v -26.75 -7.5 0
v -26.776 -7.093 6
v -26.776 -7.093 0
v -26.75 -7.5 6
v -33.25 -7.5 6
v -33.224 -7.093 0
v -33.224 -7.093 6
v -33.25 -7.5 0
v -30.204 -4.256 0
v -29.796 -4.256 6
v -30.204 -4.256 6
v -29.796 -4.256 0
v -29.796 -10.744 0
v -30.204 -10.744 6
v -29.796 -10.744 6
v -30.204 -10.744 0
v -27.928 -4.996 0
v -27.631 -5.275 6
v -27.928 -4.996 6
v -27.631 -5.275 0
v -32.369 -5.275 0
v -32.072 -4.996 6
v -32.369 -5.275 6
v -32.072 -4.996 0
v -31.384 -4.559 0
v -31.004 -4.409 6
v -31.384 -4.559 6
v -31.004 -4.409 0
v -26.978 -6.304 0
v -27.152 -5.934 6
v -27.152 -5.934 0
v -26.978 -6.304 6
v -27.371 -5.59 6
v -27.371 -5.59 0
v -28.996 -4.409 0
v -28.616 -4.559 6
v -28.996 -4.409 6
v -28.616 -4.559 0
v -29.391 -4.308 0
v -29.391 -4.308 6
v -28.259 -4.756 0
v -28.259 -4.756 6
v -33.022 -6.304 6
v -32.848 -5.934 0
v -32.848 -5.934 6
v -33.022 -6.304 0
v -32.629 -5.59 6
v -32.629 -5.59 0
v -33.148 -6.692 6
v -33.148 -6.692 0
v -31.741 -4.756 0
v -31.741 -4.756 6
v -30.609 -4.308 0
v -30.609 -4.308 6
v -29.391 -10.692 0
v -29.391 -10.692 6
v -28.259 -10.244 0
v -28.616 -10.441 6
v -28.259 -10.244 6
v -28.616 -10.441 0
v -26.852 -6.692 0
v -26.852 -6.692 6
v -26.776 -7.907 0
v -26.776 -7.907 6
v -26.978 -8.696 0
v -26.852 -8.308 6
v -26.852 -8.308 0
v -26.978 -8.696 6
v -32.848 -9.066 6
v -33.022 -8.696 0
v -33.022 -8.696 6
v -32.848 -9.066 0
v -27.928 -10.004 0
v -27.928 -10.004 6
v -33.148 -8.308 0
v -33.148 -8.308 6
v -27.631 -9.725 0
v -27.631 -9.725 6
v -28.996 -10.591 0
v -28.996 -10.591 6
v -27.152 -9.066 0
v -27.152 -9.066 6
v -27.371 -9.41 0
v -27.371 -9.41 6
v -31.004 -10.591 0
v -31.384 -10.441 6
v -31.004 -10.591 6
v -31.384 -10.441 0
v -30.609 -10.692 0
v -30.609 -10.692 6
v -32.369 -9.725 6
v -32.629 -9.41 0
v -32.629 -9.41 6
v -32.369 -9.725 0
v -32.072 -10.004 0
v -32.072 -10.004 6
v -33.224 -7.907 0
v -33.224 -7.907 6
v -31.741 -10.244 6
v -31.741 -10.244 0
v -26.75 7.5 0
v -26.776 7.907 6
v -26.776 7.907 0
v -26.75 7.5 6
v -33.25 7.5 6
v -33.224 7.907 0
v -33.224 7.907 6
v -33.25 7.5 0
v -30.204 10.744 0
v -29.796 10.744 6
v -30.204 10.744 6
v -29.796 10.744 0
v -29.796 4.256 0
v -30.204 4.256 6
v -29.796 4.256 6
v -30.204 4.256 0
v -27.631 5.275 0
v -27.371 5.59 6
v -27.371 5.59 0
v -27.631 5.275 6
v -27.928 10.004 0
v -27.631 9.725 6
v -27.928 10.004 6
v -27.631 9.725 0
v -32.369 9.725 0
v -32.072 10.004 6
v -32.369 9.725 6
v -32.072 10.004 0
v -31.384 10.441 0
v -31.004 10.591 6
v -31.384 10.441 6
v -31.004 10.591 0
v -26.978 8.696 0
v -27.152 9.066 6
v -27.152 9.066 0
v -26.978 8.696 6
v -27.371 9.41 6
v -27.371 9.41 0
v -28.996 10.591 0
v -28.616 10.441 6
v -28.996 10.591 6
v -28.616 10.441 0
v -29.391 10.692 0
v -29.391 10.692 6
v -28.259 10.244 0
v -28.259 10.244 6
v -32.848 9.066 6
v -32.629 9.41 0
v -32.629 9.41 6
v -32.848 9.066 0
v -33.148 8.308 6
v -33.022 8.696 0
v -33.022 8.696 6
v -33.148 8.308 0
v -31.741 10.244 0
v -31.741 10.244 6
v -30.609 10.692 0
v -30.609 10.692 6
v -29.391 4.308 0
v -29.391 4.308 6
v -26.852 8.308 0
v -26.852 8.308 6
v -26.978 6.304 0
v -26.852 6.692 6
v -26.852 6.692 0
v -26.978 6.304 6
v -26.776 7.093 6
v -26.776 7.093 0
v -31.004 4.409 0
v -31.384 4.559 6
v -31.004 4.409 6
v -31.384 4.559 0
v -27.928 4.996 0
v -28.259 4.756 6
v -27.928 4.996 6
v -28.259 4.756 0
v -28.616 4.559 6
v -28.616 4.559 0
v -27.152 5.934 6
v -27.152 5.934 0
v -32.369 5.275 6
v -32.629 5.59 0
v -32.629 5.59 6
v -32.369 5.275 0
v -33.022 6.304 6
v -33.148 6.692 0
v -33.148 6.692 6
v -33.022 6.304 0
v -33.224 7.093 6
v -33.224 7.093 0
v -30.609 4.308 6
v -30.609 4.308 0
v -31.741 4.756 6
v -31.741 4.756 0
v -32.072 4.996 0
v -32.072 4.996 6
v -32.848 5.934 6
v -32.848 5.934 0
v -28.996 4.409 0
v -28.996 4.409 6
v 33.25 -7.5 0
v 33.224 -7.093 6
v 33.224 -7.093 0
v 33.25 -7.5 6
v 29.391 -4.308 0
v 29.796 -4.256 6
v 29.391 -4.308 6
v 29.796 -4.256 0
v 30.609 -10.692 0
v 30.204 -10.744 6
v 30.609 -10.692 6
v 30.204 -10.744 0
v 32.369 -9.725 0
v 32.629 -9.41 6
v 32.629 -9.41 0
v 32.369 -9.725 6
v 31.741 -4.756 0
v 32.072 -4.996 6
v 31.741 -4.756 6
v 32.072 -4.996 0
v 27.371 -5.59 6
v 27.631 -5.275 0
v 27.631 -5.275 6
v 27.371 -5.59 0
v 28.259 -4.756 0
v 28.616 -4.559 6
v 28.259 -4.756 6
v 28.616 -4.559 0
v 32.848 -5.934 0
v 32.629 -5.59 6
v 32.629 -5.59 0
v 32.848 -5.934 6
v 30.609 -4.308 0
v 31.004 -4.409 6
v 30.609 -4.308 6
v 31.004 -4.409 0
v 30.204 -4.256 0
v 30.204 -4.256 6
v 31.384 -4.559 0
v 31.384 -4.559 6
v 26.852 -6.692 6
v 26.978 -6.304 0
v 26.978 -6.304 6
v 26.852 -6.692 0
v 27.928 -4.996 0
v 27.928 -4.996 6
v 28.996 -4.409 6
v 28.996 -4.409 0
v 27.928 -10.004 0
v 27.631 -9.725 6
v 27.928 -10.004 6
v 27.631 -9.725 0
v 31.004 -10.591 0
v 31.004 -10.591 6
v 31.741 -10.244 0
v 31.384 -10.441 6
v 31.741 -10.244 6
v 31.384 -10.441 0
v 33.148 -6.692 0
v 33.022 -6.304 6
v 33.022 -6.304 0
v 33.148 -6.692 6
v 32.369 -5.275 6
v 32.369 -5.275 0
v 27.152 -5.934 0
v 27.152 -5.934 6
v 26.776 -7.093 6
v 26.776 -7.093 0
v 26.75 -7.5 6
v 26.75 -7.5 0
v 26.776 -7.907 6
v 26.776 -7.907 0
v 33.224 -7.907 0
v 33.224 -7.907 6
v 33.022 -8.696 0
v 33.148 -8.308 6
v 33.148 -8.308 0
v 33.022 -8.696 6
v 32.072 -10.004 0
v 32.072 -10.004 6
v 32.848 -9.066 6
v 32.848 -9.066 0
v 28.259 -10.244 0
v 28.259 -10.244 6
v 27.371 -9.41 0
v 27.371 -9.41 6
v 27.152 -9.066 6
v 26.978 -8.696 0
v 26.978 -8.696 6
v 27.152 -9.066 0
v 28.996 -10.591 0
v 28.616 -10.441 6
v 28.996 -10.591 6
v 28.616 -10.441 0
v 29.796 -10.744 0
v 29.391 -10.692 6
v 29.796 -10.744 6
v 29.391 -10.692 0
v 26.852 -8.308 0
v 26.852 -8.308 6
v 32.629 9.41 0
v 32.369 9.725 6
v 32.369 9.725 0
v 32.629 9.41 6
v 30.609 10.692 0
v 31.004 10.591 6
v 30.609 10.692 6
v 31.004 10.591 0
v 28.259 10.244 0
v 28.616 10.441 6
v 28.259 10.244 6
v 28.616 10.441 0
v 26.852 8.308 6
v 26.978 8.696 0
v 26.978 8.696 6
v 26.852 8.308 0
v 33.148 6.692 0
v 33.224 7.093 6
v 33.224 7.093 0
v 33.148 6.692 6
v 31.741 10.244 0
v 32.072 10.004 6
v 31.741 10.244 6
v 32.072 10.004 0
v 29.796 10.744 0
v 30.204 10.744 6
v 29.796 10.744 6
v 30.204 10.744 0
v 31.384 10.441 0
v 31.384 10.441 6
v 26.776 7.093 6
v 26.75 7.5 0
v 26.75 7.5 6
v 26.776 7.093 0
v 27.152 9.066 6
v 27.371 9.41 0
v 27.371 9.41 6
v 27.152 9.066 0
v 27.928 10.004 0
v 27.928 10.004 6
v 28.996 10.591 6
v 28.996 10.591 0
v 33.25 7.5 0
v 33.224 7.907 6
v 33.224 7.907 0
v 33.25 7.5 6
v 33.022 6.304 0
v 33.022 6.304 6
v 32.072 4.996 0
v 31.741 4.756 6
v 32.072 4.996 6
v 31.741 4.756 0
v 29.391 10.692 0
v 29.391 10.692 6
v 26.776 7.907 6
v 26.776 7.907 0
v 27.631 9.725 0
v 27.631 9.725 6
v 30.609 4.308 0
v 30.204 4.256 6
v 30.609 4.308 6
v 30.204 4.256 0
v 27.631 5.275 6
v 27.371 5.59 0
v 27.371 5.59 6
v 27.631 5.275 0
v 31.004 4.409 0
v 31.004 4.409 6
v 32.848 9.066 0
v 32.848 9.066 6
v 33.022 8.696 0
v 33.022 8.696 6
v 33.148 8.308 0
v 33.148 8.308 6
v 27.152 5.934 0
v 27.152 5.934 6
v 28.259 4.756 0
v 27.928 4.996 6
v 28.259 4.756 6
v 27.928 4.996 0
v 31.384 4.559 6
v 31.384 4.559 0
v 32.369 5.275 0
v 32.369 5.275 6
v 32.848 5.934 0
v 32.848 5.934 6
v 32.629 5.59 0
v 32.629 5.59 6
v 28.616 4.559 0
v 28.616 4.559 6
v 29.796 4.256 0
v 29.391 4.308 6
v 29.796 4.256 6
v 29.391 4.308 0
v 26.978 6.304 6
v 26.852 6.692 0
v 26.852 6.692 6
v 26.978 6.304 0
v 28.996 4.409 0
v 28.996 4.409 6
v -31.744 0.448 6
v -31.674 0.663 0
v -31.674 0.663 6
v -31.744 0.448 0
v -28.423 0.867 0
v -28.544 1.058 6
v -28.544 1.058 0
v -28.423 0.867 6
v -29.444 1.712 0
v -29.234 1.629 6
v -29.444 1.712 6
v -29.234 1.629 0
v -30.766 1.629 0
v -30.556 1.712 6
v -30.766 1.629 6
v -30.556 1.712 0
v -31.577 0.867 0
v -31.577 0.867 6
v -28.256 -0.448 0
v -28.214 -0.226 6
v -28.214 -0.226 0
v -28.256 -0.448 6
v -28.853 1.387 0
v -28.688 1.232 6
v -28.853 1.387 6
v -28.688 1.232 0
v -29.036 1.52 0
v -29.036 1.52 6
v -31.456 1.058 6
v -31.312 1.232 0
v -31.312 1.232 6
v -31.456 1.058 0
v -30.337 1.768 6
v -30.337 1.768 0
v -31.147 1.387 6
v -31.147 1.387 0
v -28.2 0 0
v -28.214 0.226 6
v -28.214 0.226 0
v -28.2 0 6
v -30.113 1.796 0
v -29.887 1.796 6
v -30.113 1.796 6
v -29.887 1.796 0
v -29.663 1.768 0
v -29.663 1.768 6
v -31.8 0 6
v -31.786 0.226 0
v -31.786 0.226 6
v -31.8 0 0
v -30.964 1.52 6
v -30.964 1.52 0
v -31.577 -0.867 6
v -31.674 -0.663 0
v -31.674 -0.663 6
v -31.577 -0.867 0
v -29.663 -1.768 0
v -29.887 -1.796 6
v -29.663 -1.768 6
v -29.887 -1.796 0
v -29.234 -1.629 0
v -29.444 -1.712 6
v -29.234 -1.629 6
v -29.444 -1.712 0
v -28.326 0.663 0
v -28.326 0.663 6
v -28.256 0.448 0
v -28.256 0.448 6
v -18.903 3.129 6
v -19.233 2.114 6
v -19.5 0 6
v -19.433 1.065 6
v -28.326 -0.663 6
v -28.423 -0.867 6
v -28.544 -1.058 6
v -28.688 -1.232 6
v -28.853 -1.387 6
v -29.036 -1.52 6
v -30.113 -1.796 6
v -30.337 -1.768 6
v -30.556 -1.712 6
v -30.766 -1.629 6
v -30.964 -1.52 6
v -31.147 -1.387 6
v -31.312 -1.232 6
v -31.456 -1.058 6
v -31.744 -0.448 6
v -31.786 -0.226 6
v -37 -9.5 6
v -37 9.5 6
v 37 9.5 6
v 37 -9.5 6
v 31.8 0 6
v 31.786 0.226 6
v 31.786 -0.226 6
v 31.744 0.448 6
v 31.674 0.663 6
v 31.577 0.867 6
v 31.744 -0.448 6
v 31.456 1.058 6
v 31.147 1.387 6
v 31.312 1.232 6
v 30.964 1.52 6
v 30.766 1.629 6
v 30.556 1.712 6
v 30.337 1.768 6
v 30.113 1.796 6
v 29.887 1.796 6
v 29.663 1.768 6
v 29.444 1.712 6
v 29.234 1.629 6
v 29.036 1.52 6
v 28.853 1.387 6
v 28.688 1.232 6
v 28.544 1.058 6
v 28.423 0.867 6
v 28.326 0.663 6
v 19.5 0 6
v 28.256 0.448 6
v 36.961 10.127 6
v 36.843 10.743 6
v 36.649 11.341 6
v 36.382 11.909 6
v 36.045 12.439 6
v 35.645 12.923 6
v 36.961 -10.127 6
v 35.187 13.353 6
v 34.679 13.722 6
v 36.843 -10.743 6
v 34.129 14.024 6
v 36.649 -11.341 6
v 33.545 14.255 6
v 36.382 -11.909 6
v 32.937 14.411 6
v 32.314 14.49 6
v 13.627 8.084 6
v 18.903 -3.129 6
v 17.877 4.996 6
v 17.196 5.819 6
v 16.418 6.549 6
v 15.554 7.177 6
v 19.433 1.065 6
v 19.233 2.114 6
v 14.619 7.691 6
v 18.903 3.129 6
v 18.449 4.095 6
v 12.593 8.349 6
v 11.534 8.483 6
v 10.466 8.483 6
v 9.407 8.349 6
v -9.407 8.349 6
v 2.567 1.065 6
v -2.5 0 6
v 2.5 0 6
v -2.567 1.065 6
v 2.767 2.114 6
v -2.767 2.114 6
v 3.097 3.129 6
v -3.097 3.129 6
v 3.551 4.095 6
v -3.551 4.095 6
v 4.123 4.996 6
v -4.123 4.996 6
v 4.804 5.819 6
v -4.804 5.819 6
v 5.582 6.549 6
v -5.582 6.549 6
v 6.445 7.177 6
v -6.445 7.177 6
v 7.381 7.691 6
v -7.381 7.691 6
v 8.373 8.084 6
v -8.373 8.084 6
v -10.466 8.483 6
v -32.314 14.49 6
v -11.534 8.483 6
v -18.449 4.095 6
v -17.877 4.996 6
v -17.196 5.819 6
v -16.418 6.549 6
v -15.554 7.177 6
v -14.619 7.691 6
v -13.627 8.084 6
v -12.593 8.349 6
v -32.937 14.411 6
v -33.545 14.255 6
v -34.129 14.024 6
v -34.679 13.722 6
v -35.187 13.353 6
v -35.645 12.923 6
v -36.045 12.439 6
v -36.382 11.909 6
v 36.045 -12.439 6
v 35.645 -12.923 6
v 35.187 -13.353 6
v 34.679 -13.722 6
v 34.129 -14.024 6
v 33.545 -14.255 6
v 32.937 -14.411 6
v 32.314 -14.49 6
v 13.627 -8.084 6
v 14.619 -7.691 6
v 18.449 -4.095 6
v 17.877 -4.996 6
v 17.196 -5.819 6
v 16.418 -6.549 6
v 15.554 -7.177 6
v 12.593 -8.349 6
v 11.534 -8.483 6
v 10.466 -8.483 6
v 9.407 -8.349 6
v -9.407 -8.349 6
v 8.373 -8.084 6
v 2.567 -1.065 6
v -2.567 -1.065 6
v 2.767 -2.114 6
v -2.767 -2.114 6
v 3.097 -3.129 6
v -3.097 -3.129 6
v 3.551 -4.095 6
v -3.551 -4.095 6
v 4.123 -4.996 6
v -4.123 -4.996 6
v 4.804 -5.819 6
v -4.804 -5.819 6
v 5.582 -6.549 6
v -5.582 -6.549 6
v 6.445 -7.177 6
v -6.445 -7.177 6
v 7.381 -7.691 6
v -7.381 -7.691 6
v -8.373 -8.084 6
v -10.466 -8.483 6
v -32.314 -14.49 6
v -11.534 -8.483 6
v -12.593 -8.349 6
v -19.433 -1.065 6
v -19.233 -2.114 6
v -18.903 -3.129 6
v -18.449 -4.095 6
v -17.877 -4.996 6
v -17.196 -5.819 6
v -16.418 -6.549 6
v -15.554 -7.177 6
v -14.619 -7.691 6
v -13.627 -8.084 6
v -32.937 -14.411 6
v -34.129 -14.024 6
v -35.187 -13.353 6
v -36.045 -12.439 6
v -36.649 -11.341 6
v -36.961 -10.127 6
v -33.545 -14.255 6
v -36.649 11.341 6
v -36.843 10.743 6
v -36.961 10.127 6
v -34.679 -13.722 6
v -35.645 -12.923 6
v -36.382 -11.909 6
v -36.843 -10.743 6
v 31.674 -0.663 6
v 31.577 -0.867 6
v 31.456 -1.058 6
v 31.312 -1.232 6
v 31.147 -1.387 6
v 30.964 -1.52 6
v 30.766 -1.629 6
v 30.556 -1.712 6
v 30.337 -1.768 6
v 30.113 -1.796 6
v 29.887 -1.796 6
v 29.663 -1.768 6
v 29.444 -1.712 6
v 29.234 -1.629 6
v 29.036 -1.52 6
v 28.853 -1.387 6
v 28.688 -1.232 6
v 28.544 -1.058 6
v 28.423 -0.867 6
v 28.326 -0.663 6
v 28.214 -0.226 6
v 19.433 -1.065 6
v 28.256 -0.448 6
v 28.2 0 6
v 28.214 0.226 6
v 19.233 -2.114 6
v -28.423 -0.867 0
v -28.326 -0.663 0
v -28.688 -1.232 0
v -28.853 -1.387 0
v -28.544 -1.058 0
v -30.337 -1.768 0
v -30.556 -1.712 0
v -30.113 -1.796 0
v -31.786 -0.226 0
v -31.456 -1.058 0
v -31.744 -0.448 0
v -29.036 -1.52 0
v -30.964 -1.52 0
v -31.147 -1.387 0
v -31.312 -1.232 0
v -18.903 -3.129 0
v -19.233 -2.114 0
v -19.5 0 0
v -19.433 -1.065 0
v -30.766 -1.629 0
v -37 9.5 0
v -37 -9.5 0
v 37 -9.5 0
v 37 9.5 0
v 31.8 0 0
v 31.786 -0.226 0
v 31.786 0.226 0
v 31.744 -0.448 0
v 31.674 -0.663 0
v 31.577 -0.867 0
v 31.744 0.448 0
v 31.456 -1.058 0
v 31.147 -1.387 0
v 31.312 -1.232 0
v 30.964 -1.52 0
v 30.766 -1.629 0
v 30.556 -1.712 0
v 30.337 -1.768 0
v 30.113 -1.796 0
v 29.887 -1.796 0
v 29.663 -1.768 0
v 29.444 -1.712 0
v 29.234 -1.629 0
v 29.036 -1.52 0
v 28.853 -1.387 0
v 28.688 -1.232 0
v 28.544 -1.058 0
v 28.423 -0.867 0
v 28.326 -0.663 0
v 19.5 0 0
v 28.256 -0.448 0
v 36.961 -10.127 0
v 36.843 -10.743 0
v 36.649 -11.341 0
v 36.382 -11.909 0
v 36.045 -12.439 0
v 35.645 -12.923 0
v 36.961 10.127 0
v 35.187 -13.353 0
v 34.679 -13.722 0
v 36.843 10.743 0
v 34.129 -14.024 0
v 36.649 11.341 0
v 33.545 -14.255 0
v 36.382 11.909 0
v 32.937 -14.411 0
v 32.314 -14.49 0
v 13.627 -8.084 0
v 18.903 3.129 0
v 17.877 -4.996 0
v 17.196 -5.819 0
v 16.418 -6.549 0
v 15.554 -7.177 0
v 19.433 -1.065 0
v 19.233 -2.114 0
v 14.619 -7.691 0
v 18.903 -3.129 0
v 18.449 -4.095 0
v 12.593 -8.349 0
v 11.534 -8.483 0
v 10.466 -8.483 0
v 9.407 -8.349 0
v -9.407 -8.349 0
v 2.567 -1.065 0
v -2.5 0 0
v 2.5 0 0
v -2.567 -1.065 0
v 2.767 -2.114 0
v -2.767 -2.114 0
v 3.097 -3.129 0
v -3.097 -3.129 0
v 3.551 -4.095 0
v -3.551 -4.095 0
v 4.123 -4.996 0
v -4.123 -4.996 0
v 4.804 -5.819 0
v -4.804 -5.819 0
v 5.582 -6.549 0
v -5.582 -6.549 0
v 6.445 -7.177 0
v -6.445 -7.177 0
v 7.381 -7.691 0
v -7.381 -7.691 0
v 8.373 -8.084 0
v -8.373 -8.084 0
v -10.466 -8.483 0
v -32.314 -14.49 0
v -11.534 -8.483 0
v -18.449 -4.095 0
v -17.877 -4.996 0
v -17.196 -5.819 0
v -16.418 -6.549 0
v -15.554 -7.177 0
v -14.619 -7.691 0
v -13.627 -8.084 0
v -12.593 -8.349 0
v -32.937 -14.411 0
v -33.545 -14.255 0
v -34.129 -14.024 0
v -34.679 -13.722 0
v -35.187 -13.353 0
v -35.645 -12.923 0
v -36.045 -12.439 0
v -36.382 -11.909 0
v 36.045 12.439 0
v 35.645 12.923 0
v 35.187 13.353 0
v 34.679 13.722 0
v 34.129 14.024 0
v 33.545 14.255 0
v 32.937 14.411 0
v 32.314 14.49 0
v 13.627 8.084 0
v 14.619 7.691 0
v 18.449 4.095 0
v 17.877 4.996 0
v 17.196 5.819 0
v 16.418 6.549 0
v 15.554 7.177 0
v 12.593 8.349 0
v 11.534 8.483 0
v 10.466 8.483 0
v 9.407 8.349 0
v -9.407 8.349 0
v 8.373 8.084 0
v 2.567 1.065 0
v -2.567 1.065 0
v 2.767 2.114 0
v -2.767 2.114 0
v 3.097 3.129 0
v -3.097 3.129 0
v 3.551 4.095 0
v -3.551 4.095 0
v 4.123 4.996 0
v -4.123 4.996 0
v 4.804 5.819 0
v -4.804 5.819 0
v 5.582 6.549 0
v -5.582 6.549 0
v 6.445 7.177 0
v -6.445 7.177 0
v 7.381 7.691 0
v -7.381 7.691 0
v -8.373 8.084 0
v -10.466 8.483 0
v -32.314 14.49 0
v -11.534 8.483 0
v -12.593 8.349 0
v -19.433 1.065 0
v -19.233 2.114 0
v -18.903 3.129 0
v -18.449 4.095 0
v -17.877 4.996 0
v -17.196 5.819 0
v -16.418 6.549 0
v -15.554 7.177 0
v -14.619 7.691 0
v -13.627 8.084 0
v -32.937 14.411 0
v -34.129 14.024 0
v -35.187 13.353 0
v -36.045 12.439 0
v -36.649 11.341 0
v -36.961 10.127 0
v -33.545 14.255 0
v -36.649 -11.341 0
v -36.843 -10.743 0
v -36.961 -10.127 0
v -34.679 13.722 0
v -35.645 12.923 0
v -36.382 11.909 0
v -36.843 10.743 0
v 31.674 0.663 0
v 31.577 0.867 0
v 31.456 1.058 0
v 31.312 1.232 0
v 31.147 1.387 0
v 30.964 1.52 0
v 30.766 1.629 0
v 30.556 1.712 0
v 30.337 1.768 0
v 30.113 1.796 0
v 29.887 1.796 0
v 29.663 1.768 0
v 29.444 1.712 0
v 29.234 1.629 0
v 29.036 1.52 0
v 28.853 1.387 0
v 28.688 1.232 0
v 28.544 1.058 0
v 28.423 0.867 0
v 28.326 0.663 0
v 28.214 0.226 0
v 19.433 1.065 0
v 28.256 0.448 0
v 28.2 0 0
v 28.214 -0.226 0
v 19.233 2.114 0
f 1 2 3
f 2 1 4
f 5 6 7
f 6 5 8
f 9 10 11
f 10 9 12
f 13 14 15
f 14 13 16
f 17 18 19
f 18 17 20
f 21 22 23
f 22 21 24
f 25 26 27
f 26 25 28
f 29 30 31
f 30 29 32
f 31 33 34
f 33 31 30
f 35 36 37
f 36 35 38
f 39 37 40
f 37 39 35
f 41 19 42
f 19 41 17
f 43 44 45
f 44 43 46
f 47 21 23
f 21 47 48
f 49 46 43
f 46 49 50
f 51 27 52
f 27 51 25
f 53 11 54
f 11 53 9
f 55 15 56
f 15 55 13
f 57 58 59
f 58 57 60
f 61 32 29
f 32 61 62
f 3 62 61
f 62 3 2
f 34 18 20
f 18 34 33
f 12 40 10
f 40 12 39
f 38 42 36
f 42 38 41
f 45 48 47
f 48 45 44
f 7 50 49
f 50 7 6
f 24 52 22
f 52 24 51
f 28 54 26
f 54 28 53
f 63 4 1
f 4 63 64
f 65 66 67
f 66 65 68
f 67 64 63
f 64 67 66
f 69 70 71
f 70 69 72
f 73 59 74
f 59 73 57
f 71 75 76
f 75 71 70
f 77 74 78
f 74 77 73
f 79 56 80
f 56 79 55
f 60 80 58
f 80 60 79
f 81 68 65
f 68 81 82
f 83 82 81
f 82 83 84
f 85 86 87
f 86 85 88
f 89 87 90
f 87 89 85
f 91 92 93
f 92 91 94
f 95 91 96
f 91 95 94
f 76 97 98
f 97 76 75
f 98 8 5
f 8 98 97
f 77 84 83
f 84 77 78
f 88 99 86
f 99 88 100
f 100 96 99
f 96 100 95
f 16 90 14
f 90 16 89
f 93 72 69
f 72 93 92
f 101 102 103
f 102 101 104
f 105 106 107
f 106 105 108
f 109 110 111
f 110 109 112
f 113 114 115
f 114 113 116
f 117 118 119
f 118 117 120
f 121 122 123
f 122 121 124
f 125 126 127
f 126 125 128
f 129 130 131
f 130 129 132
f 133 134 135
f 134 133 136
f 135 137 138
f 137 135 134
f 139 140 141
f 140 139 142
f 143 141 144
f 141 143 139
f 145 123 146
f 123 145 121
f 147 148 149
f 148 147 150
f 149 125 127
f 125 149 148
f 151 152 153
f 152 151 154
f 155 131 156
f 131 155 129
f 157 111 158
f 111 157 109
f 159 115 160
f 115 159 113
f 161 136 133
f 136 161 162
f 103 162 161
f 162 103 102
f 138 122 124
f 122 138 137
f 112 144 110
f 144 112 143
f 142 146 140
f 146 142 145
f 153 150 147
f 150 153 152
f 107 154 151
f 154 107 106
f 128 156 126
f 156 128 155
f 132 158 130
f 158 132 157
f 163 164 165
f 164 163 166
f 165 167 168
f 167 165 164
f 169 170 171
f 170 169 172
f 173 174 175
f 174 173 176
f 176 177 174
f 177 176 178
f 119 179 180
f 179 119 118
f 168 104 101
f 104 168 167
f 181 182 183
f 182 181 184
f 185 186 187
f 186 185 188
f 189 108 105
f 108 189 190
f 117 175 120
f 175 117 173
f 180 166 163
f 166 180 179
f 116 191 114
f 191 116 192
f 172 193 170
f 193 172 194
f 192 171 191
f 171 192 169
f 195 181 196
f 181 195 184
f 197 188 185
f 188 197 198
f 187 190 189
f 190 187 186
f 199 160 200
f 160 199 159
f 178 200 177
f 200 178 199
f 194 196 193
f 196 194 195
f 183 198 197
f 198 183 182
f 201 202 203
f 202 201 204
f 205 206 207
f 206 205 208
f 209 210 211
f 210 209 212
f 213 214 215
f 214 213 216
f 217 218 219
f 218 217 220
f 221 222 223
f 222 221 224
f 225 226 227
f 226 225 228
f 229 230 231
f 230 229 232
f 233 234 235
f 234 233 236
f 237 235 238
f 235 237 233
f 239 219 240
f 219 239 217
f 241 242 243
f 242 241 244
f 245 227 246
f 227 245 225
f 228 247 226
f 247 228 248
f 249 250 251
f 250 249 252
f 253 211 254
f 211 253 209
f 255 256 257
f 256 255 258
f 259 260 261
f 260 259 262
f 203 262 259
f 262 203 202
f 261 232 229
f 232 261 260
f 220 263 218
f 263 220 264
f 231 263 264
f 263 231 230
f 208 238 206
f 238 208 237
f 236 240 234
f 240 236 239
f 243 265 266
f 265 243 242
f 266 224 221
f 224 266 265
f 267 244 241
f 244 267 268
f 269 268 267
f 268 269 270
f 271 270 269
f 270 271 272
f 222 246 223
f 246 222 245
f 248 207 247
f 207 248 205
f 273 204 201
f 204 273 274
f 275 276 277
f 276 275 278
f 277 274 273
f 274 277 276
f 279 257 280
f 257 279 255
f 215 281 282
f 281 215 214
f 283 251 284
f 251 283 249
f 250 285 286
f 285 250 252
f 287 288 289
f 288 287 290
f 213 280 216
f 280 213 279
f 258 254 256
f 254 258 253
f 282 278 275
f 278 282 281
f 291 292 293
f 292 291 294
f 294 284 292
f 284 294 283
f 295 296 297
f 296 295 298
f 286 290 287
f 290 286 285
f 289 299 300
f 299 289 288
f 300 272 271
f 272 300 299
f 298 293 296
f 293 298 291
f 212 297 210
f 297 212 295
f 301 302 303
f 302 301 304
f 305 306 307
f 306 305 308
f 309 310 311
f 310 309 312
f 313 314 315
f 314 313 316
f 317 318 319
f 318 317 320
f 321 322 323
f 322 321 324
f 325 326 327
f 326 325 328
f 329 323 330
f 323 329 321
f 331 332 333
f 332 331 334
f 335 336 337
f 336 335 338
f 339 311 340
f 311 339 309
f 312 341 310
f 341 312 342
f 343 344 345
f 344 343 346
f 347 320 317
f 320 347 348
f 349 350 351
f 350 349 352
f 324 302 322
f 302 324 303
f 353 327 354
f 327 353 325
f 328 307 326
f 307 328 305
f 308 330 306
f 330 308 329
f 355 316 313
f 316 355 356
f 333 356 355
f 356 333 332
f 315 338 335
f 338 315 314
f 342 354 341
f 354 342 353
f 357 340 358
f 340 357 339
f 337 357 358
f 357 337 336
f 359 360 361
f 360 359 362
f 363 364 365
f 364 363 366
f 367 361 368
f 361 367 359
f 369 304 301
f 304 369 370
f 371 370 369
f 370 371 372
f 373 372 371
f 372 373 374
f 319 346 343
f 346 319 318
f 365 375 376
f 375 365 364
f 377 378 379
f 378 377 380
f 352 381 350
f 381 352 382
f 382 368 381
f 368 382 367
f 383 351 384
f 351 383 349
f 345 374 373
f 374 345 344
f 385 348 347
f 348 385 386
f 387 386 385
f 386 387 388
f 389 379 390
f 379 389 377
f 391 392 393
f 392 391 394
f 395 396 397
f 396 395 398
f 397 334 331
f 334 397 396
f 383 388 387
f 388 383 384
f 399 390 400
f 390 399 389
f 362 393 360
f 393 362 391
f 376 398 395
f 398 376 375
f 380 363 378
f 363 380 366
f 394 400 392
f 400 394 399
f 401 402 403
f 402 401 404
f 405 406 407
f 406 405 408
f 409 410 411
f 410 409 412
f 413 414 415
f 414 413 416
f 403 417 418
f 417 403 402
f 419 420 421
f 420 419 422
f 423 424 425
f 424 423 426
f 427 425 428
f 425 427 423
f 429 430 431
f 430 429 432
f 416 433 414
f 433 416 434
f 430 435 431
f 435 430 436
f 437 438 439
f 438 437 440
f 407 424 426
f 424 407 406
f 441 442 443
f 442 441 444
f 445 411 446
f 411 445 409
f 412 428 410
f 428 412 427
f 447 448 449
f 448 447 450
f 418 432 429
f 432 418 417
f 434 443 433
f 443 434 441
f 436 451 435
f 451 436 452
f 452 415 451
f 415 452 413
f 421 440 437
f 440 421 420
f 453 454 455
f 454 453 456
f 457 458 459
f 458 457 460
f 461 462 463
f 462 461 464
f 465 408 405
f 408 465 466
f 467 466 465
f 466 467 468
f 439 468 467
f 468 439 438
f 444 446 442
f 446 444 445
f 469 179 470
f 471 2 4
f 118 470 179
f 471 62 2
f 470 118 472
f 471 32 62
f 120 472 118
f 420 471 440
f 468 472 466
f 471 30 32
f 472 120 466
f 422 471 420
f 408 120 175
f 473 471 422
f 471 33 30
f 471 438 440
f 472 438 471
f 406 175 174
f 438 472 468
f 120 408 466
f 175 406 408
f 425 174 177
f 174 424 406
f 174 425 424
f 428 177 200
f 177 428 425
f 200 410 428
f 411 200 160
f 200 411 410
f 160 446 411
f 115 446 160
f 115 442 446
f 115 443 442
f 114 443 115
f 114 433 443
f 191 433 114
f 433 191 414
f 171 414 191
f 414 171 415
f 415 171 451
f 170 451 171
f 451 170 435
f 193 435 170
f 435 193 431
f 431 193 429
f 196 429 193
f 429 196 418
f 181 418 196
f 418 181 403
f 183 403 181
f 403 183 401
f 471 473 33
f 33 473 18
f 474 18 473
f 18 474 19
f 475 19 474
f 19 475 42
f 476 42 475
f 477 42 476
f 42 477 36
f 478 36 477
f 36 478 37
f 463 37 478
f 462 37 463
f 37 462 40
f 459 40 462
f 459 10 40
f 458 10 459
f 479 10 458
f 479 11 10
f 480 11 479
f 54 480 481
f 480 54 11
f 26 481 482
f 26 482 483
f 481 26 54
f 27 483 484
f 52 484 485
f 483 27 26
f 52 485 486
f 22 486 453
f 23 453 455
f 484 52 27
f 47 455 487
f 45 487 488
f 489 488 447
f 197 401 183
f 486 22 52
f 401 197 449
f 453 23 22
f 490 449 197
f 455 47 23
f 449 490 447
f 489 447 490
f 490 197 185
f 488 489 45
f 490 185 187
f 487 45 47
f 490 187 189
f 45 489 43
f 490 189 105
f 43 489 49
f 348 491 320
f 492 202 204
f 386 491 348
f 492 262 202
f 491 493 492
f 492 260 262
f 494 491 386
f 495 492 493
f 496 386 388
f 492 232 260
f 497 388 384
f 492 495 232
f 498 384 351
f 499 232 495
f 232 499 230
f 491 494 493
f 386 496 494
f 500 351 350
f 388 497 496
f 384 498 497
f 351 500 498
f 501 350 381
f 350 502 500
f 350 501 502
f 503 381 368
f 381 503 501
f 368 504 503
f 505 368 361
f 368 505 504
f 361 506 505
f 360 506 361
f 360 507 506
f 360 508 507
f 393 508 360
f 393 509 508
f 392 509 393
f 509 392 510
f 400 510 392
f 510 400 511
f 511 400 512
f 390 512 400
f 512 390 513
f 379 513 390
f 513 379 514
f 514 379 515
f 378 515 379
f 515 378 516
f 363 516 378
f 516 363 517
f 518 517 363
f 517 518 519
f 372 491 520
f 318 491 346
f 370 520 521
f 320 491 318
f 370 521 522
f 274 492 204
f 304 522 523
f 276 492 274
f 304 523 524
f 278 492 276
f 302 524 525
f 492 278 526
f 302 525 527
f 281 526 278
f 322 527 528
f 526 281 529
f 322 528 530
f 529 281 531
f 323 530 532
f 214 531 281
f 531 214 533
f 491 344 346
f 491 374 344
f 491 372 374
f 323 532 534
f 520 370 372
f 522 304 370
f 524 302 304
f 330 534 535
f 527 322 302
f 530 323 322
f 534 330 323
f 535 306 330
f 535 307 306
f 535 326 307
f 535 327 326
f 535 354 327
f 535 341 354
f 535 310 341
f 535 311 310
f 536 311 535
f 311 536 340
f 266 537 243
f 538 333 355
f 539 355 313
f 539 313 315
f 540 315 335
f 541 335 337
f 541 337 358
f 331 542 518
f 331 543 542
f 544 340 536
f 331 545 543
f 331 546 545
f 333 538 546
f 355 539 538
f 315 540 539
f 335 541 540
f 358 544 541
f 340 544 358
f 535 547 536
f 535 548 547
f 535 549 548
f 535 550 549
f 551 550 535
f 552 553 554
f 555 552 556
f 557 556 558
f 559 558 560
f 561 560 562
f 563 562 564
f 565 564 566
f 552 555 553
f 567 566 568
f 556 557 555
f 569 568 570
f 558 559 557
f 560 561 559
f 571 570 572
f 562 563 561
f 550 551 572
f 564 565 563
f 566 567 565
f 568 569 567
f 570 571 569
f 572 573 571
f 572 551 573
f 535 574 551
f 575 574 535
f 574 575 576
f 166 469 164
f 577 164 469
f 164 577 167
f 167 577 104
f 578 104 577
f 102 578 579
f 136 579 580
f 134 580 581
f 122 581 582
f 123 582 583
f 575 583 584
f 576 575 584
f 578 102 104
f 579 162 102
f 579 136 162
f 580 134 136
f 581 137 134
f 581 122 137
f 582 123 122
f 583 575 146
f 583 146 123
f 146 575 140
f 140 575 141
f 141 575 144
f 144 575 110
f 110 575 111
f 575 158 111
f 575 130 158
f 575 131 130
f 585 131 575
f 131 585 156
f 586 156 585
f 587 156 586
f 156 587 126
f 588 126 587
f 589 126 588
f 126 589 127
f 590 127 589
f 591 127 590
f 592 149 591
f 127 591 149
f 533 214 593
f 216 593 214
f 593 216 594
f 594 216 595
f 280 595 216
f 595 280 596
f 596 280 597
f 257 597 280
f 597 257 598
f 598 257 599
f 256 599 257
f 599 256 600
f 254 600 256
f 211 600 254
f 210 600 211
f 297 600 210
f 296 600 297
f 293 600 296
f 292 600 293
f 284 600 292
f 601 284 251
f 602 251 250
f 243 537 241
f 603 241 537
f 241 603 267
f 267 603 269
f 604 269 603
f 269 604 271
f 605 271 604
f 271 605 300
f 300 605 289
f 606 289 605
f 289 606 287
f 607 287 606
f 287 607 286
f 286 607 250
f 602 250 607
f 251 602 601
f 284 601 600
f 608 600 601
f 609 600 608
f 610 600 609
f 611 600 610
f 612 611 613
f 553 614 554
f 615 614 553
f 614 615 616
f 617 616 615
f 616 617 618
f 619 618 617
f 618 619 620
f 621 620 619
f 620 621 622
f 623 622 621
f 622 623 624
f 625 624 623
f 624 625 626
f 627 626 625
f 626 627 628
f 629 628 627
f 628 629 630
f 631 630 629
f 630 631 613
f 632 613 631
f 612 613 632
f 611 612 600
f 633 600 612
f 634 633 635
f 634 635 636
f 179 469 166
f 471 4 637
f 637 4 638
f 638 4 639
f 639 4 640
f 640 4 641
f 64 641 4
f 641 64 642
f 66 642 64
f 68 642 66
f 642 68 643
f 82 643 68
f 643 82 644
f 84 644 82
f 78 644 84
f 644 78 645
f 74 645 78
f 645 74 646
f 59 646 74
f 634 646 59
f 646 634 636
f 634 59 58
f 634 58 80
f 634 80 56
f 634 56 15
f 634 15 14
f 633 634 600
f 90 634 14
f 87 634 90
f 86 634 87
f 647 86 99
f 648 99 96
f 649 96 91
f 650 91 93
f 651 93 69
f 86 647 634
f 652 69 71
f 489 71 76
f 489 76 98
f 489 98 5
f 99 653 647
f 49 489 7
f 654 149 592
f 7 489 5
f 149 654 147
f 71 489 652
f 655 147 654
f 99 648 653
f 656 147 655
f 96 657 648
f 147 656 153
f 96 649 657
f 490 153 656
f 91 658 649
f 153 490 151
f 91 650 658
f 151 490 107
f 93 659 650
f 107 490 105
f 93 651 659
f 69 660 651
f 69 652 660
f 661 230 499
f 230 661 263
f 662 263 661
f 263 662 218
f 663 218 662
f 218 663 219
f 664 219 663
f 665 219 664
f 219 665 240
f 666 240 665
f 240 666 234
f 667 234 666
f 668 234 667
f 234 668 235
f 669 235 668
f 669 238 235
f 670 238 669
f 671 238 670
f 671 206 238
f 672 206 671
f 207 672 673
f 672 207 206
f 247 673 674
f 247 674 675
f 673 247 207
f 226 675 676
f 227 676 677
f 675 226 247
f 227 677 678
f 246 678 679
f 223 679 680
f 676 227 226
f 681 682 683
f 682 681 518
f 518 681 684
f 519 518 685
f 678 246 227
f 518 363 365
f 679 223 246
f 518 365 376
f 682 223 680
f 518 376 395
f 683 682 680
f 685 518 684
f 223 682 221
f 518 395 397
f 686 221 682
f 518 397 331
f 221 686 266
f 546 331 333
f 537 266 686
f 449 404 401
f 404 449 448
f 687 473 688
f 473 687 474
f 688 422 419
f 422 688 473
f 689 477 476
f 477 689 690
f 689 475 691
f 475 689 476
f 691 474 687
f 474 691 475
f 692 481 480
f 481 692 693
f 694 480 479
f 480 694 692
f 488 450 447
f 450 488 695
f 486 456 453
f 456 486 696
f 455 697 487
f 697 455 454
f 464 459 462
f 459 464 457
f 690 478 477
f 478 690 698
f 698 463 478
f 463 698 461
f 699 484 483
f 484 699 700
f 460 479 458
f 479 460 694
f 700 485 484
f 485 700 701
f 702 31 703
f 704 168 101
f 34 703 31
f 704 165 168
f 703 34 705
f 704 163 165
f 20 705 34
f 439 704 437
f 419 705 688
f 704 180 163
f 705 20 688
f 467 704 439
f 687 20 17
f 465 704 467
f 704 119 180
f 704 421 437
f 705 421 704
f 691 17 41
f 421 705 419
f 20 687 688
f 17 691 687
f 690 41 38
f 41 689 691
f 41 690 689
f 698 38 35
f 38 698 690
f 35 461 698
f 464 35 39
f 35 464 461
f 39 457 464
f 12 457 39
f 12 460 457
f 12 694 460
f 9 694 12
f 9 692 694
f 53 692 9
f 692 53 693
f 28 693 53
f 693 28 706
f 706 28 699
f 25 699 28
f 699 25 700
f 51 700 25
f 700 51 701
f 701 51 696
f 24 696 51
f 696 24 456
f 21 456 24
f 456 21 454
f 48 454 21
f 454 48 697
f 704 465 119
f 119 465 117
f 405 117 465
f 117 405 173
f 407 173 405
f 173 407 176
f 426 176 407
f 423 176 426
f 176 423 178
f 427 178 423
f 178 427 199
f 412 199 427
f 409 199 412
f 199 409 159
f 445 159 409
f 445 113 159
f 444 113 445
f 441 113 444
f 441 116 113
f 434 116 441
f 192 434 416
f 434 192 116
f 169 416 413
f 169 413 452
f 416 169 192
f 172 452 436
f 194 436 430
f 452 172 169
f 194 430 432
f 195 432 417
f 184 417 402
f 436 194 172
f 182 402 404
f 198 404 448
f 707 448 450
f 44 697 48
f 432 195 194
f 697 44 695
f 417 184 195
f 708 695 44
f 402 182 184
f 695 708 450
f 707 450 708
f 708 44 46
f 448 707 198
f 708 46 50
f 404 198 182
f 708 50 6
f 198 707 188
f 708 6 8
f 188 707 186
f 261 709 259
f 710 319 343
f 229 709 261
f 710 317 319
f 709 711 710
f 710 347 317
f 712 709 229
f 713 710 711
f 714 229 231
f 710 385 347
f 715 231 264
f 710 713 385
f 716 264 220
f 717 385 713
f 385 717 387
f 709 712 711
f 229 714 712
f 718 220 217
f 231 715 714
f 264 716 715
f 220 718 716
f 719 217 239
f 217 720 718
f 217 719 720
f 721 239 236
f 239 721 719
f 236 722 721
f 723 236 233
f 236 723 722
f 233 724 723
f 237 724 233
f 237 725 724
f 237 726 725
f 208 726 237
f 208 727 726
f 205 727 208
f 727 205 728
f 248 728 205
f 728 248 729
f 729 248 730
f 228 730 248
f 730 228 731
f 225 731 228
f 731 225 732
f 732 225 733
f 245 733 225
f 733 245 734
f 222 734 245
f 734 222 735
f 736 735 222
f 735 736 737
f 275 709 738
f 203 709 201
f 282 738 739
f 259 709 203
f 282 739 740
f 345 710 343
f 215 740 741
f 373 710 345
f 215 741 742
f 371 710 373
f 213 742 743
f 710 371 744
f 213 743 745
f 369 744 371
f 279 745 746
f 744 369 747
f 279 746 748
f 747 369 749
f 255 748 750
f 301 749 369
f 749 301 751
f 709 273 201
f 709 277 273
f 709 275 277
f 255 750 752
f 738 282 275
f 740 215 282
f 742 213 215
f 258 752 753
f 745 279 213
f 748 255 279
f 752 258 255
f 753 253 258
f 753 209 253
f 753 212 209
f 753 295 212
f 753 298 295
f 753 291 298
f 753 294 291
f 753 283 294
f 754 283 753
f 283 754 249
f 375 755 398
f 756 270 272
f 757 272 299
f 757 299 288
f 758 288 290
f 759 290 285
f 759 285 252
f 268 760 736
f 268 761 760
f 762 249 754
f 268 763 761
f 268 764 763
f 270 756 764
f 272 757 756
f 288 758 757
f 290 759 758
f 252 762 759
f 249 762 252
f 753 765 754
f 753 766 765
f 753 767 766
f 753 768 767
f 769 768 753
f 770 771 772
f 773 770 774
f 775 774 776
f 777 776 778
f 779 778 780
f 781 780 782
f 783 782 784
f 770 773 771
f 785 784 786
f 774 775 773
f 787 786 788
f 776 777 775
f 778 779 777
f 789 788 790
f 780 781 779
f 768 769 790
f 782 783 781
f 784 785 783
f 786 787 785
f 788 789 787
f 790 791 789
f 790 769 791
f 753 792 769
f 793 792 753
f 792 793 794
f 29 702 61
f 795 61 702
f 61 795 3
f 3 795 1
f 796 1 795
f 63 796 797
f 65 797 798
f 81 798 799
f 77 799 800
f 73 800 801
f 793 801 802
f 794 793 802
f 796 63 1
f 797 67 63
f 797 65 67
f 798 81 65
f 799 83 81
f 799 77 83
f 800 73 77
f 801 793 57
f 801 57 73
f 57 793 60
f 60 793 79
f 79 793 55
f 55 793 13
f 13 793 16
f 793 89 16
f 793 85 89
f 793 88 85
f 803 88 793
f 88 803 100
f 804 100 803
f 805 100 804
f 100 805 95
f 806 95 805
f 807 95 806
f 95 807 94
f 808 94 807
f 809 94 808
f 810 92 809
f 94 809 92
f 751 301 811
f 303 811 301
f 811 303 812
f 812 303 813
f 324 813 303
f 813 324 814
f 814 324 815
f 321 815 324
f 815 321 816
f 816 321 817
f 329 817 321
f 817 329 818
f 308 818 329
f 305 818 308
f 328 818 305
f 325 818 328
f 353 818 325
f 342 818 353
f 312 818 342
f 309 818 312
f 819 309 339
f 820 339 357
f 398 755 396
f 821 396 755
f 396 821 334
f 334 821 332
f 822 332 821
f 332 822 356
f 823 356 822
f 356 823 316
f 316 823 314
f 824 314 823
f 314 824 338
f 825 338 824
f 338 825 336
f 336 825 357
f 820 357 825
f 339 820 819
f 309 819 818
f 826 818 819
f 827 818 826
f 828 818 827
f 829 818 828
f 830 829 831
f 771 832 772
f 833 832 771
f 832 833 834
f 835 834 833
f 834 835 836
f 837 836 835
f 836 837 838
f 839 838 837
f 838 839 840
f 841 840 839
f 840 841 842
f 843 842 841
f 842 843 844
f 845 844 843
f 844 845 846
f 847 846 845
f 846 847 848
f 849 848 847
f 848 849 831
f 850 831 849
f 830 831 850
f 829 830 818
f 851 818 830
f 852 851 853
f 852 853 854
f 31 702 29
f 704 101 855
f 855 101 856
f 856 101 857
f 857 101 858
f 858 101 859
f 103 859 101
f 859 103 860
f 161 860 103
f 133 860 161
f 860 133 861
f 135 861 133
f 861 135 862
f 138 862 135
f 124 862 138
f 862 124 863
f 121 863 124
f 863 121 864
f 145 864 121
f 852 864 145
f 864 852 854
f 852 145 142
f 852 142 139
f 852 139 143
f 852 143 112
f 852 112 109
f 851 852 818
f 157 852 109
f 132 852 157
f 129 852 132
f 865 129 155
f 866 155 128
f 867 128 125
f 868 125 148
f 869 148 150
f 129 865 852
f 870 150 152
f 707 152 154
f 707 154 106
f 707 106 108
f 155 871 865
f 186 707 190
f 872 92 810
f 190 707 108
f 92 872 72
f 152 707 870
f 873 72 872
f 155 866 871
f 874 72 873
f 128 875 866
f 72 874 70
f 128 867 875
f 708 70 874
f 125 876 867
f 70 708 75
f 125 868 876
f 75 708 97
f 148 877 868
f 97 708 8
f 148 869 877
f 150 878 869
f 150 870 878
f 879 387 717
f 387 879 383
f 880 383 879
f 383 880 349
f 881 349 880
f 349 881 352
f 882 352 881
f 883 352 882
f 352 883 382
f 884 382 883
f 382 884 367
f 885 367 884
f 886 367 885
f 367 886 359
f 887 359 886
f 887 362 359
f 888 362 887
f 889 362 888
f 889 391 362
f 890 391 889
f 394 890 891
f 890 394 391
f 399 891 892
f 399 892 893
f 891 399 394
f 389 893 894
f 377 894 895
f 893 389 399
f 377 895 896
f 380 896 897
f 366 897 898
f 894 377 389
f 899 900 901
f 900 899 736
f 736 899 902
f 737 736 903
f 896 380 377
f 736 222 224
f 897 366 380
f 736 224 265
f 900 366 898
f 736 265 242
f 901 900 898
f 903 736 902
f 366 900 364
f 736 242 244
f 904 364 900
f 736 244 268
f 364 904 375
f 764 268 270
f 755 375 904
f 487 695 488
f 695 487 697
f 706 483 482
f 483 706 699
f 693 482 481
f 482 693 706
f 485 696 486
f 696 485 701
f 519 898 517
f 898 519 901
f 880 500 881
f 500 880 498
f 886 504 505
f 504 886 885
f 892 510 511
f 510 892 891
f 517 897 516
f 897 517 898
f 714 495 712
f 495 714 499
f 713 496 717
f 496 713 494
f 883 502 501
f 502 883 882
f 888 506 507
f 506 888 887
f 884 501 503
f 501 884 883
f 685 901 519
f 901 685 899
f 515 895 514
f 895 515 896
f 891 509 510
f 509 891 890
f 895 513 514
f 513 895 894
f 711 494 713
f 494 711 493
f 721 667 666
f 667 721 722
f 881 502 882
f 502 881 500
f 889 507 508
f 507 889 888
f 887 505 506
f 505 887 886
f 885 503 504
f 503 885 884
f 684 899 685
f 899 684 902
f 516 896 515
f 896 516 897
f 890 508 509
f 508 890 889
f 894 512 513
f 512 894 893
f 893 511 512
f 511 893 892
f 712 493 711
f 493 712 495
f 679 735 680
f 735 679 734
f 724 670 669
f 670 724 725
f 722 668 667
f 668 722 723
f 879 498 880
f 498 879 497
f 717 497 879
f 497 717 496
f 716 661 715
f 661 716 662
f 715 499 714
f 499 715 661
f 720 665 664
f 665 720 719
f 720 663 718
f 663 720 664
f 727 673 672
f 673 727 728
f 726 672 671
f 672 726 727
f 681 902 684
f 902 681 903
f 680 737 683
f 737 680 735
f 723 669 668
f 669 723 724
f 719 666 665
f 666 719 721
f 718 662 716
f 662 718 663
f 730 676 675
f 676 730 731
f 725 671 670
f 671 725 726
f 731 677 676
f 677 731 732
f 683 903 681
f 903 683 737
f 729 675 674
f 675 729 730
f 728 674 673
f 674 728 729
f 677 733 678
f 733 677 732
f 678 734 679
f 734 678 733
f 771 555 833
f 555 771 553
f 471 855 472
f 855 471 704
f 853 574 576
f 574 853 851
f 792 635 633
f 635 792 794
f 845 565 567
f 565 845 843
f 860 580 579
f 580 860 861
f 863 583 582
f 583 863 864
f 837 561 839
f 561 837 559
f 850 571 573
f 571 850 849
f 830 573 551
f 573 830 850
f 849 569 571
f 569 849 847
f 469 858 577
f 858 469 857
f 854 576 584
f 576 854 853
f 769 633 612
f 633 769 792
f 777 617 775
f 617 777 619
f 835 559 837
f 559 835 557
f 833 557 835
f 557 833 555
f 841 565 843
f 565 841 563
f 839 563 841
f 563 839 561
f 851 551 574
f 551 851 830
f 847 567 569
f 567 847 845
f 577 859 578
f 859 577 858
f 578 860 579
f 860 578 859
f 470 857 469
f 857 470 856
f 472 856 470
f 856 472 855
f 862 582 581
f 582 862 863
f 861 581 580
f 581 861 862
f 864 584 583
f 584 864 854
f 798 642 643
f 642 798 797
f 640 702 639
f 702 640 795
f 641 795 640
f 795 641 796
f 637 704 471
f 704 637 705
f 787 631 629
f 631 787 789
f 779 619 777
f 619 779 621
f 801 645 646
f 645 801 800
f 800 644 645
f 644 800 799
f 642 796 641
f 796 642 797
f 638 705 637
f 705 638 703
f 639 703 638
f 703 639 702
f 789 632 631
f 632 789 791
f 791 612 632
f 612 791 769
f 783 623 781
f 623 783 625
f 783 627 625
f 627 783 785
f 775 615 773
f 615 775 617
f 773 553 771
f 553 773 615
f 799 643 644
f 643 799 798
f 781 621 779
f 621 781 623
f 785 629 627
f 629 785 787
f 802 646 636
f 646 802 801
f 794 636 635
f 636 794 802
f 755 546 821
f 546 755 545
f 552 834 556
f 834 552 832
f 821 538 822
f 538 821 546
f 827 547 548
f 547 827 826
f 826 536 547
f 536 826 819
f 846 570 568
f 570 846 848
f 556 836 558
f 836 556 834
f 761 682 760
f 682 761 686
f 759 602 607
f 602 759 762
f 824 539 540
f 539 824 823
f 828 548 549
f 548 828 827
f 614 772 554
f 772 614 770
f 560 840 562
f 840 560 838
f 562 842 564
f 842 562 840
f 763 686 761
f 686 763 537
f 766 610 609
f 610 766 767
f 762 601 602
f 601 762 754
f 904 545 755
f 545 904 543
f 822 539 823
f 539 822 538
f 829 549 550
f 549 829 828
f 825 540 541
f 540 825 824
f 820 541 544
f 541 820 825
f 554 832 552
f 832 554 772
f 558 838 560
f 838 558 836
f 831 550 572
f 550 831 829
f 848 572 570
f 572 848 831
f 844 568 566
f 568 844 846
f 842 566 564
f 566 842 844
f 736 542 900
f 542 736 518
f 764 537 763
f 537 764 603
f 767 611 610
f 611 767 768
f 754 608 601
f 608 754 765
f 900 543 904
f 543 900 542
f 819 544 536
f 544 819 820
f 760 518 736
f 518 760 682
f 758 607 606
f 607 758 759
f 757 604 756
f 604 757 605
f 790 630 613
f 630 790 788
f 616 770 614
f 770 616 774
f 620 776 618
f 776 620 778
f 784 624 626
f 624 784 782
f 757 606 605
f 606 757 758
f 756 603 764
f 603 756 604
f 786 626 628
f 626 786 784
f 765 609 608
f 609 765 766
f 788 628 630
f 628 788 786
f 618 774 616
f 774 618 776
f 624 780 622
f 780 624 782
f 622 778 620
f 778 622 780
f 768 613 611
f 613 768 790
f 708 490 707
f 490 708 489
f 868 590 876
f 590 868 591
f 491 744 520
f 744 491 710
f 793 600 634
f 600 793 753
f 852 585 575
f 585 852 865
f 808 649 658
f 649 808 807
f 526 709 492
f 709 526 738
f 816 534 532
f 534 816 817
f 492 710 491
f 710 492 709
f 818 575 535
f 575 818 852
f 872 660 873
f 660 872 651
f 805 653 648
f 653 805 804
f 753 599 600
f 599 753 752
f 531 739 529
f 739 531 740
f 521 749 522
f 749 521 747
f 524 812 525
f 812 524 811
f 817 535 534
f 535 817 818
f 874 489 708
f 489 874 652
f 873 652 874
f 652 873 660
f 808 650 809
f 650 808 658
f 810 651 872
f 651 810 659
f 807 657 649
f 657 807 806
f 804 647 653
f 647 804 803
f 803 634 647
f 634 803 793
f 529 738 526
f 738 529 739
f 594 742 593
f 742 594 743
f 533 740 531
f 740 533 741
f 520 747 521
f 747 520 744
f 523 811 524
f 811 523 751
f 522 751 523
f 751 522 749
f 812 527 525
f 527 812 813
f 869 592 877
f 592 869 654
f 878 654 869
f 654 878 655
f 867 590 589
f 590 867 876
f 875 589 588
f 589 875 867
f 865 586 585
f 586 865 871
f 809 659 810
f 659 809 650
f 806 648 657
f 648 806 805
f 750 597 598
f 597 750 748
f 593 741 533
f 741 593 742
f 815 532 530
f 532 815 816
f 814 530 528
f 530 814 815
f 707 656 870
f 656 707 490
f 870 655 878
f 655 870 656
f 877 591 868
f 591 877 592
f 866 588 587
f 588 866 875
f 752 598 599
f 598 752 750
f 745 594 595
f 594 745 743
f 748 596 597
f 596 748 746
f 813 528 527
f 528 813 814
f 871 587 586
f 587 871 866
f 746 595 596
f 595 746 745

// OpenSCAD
$fn = 50;


difference() {
	union() {
		hull() {
			translate(v = [-32.0000000000, 9.5000000000, 0]) {
				cylinder(h = 6, r = 5);
			}
			translate(v = [32.0000000000, 9.5000000000, 0]) {
				cylinder(h = 6, r = 5);
			}
			translate(v = [-32.0000000000, -9.5000000000, 0]) {
				cylinder(h = 6, r = 5);
			}
			translate(v = [32.0000000000, -9.5000000000, 0]) {
				cylinder(h = 6, r = 5);
			}
		}
	}
	union() {
		#translate(v = [-30.0000000000, -7.5000000000, 0]) {
			cylinder(h = 6, r = 3.2500000000);
		}
		#translate(v = [-30.0000000000, 7.5000000000, 0]) {
			cylinder(h = 6, r = 3.2500000000);
		}
		#translate(v = [30.0000000000, -7.5000000000, 0]) {
			cylinder(h = 6, r = 3.2500000000);
		}
		#translate(v = [30.0000000000, 7.5000000000, 0]) {
			cylinder(h = 6, r = 3.2500000000);
		}
		#translate(v = [-30.0000000000, -7.5000000000, -100.0000000000]) {
			cylinder(h = 200, r = 3.2500000000);
		}
		#translate(v = [-30.0000000000, 7.5000000000, -100.0000000000]) {
			cylinder(h = 200, r = 3.2500000000);
		}
		#translate(v = [30.0000000000, -7.5000000000, -100.0000000000]) {
			cylinder(h = 200, r = 3.2500000000);
		}
		#translate(v = [30.0000000000, 7.5000000000, -100.0000000000]) {
			cylinder(h = 200, r = 3.2500000000);
		}
		#translate(v = [-30.0000000000, -7.5000000000, 0]) {
			cylinder(h = 6, r = 1.8000000000);
		}
		#translate(v = [-30.0000000000, 0.0000000000, 0]) {
			cylinder(h = 6, r = 1.8000000000);
		}
		#translate(v = [-30.0000000000, 7.5000000000, 0]) {
			cylinder(h = 6, r = 1.8000000000);
		}
		#translate(v = [30.0000000000, -7.5000000000, 0]) {
			cylinder(h = 6, r = 1.8000000000);
		}
		#translate(v = [30.0000000000, 0.0000000000, 0]) {
			cylinder(h = 6, r = 1.8000000000);
		}
		#translate(v = [30.0000000000, 7.5000000000, 0]) {
			cylinder(h = 6, r = 1.8000000000);
		}
		#translate(v = [-30.0000000000, -7.5000000000, 0]) {
			cylinder(h = 6, r = 1.8000000000);
		}
		#translate(v = [-30.0000000000, 0.0000000000, 0]) {
			cylinder(h = 6, r = 1.8000000000);
		}
		#translate(v = [-30.0000000000, 7.5000000000, 0]) {
			cylinder(h = 6, r = 1.8000000000);
		}
		#translate(v = [30.0000000000, -7.5000000000, 0]) {
			cylinder(h = 6, r = 1.8000000000);
		}
		#translate(v = [30.0000000000, 0.0000000000, 0]) {
			cylinder(h = 6, r = 1.8000000000);
		}
		#translate(v = [30.0000000000, 7.5000000000, 0]) {
			cylinder(h = 6, r = 1.8000000000);
		}
		#translate(v = [-30.0000000000, -7.5000000000, 0]) {
			cylinder(h = 6, r = 1.8000000000);
		}
		#translate(v = [-30.0000000000, 0.0000000000, 0]) {
			cylinder(h = 6, r = 1.8000000000);
		}
		#translate(v = [-30.0000000000, 7.5000000000, 0]) {
			cylinder(h = 6, r = 1.8000000000);
		}
		#translate(v = [30.0000000000, -7.5000000000, 0]) {
			cylinder(h = 6, r = 1.8000000000);
		}
		#translate(v = [30.0000000000, 0.0000000000, 0]) {
			cylinder(h = 6, r = 1.8000000000);
		}
		#translate(v = [30.0000000000, 7.5000000000, 0]) {
			cylinder(h = 6, r = 1.8000000000);
		}
		#translate(v = [-11.0000000000, 0, 0]) {
			cylinder(h = 6, r = 8.5000000000);
		}
		#translate(v = [11.0000000000, 0, 0]) {
			cylinder(h = 6, r = 8.5000000000);
		}
	}
}
